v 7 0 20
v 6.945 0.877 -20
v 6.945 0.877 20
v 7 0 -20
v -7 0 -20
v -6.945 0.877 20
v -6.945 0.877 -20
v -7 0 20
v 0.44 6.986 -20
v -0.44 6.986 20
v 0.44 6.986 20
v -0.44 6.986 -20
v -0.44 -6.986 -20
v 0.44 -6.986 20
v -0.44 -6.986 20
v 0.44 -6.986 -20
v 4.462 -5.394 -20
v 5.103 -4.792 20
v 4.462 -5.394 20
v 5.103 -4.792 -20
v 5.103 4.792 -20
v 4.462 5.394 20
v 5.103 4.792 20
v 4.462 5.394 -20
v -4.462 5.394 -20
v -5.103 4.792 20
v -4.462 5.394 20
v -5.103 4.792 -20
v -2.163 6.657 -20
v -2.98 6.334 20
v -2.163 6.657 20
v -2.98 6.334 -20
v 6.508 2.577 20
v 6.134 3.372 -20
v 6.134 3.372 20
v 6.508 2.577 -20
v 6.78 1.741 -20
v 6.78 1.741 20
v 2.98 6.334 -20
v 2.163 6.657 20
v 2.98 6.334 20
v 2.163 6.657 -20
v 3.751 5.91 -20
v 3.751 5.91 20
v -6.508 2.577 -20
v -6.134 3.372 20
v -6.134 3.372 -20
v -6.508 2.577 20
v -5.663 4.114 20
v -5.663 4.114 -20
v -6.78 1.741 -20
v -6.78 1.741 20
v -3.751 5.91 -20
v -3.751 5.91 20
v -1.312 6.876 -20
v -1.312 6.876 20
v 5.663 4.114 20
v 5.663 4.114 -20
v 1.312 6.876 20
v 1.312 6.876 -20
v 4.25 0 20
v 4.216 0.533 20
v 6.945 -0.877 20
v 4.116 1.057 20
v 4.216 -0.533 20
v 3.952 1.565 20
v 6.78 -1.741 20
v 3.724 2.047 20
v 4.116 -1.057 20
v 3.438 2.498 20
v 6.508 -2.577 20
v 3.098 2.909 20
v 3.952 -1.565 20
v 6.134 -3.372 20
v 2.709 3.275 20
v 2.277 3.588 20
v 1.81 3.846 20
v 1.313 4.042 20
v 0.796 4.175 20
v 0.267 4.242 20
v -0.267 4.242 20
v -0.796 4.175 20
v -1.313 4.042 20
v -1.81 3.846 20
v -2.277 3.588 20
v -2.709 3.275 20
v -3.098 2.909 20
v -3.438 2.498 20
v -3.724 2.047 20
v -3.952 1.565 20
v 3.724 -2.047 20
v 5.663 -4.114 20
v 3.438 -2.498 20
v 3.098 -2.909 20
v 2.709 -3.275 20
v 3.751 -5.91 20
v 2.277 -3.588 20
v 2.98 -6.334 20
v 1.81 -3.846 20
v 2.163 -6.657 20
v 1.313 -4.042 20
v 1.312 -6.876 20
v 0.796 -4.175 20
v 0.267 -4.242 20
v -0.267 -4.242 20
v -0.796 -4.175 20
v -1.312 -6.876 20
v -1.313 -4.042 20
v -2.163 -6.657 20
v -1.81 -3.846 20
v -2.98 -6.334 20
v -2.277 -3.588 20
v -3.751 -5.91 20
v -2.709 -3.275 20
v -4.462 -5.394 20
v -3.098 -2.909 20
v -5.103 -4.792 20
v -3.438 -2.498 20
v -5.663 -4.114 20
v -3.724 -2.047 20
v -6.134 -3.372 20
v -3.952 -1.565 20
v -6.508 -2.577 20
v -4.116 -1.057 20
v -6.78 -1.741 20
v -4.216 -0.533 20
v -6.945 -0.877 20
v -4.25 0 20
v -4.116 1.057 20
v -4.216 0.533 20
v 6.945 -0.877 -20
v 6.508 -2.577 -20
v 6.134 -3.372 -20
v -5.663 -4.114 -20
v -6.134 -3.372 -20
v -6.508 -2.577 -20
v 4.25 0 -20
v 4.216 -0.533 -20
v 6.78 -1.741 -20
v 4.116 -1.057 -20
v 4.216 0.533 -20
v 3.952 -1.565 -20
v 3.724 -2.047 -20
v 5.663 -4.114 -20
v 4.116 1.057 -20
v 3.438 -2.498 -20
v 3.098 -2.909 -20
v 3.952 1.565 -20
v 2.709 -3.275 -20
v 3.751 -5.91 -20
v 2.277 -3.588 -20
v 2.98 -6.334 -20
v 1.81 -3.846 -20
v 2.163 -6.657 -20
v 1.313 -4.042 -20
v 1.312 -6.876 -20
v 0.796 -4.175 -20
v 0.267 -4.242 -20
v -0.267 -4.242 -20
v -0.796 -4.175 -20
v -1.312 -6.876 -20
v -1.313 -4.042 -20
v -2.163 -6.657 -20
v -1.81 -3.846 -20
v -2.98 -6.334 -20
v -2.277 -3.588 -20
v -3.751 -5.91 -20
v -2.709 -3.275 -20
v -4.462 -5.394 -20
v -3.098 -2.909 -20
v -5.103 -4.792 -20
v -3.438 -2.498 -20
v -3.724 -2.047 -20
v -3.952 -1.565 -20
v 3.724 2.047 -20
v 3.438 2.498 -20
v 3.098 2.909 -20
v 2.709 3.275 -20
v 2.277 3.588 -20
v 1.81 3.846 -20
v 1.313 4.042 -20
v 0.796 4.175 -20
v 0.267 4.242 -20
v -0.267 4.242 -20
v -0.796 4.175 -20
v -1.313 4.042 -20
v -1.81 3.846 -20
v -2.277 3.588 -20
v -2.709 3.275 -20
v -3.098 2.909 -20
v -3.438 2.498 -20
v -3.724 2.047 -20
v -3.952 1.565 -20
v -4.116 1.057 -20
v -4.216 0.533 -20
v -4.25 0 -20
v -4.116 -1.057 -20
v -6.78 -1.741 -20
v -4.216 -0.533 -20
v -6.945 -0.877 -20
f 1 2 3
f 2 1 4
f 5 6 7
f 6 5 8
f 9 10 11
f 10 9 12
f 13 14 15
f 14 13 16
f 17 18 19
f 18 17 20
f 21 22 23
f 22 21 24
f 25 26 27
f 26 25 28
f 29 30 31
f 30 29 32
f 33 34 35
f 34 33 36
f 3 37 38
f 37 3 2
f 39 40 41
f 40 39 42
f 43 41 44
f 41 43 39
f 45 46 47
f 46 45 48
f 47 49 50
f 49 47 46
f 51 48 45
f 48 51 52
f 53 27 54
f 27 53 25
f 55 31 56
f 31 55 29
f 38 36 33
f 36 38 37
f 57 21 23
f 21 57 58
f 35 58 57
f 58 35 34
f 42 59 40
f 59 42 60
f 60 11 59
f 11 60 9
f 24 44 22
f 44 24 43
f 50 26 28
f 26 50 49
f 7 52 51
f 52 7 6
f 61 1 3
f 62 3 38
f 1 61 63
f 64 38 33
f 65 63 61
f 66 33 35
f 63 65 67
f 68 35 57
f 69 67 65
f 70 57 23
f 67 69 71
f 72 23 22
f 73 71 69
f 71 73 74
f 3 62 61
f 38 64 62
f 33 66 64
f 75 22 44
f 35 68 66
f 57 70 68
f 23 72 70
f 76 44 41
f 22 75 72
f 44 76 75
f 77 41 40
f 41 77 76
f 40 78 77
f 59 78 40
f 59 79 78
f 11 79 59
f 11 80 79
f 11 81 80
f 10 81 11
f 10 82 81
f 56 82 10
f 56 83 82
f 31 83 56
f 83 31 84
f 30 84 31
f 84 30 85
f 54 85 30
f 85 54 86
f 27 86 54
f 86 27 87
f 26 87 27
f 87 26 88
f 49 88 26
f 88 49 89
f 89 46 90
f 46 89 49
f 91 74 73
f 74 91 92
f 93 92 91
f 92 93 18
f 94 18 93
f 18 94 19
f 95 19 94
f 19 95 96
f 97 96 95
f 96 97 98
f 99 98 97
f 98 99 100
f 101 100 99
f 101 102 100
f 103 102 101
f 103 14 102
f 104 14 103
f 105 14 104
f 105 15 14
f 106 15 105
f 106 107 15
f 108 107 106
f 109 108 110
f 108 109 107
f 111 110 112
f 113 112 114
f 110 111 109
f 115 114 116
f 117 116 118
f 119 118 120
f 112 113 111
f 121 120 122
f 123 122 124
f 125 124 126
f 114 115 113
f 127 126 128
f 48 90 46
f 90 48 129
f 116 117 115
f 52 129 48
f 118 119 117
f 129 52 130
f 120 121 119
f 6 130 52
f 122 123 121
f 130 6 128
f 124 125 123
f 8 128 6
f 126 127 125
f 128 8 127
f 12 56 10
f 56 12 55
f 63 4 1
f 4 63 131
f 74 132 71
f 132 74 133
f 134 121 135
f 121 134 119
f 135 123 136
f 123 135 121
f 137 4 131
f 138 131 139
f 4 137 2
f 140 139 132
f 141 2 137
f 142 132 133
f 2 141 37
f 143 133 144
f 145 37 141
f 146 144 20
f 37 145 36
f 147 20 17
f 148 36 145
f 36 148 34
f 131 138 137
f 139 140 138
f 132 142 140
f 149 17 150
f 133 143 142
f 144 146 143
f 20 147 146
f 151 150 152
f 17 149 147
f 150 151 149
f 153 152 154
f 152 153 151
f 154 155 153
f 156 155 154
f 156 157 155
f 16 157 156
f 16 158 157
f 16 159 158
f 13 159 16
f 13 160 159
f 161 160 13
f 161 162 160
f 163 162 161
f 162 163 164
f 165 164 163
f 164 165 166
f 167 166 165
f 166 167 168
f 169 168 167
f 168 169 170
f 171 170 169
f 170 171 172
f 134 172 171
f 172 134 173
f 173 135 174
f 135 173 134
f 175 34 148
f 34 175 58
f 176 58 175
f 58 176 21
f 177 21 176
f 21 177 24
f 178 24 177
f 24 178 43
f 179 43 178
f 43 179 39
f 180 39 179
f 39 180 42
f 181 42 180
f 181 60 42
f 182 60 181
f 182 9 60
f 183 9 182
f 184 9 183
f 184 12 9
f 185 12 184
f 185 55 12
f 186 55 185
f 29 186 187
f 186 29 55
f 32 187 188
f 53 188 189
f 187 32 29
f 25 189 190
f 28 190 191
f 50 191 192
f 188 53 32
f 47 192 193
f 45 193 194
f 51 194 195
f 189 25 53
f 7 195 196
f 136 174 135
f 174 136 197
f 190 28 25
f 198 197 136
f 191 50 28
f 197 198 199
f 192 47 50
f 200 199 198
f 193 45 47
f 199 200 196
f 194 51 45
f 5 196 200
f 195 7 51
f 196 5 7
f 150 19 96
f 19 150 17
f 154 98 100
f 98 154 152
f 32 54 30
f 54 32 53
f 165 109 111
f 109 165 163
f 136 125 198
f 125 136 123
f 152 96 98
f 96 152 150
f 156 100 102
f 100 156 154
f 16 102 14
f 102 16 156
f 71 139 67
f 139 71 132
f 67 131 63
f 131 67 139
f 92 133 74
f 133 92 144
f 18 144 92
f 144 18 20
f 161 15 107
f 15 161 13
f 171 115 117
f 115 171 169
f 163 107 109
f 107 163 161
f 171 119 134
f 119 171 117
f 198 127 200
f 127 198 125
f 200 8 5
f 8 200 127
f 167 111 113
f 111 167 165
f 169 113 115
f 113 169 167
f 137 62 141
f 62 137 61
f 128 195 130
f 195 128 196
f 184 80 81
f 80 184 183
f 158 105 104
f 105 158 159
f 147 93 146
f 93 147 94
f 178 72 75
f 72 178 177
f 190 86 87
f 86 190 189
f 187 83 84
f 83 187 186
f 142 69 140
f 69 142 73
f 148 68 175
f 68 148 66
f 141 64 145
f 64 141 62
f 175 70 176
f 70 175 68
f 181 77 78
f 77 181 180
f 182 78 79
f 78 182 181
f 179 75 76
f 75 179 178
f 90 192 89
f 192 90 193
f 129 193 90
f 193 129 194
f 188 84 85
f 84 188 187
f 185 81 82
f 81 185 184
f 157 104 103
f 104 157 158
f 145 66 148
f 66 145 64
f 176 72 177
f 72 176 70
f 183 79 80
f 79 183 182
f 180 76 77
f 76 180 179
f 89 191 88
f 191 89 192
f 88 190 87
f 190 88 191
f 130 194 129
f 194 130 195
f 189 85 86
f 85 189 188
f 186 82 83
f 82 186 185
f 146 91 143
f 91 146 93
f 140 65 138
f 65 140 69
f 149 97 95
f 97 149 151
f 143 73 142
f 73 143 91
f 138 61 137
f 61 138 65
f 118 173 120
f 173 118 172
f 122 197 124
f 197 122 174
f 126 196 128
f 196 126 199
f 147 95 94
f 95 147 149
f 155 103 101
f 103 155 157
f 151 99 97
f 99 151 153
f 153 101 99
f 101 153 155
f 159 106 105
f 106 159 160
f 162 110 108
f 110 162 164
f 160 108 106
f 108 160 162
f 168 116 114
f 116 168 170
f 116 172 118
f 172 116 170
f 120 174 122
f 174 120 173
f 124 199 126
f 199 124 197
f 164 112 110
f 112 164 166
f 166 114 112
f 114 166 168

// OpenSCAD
$fn = 50;


difference() {
	union() {
		translate(v = [0, 0, -20.0000000000]) {
			cylinder(h = 40, r = 7.0000000000);
		}
	}
	union() {
		translate(v = [0, 0, -100.0000000000]) {
			cylinder(h = 200, r = 4.2500000000);
		}
	}
}
